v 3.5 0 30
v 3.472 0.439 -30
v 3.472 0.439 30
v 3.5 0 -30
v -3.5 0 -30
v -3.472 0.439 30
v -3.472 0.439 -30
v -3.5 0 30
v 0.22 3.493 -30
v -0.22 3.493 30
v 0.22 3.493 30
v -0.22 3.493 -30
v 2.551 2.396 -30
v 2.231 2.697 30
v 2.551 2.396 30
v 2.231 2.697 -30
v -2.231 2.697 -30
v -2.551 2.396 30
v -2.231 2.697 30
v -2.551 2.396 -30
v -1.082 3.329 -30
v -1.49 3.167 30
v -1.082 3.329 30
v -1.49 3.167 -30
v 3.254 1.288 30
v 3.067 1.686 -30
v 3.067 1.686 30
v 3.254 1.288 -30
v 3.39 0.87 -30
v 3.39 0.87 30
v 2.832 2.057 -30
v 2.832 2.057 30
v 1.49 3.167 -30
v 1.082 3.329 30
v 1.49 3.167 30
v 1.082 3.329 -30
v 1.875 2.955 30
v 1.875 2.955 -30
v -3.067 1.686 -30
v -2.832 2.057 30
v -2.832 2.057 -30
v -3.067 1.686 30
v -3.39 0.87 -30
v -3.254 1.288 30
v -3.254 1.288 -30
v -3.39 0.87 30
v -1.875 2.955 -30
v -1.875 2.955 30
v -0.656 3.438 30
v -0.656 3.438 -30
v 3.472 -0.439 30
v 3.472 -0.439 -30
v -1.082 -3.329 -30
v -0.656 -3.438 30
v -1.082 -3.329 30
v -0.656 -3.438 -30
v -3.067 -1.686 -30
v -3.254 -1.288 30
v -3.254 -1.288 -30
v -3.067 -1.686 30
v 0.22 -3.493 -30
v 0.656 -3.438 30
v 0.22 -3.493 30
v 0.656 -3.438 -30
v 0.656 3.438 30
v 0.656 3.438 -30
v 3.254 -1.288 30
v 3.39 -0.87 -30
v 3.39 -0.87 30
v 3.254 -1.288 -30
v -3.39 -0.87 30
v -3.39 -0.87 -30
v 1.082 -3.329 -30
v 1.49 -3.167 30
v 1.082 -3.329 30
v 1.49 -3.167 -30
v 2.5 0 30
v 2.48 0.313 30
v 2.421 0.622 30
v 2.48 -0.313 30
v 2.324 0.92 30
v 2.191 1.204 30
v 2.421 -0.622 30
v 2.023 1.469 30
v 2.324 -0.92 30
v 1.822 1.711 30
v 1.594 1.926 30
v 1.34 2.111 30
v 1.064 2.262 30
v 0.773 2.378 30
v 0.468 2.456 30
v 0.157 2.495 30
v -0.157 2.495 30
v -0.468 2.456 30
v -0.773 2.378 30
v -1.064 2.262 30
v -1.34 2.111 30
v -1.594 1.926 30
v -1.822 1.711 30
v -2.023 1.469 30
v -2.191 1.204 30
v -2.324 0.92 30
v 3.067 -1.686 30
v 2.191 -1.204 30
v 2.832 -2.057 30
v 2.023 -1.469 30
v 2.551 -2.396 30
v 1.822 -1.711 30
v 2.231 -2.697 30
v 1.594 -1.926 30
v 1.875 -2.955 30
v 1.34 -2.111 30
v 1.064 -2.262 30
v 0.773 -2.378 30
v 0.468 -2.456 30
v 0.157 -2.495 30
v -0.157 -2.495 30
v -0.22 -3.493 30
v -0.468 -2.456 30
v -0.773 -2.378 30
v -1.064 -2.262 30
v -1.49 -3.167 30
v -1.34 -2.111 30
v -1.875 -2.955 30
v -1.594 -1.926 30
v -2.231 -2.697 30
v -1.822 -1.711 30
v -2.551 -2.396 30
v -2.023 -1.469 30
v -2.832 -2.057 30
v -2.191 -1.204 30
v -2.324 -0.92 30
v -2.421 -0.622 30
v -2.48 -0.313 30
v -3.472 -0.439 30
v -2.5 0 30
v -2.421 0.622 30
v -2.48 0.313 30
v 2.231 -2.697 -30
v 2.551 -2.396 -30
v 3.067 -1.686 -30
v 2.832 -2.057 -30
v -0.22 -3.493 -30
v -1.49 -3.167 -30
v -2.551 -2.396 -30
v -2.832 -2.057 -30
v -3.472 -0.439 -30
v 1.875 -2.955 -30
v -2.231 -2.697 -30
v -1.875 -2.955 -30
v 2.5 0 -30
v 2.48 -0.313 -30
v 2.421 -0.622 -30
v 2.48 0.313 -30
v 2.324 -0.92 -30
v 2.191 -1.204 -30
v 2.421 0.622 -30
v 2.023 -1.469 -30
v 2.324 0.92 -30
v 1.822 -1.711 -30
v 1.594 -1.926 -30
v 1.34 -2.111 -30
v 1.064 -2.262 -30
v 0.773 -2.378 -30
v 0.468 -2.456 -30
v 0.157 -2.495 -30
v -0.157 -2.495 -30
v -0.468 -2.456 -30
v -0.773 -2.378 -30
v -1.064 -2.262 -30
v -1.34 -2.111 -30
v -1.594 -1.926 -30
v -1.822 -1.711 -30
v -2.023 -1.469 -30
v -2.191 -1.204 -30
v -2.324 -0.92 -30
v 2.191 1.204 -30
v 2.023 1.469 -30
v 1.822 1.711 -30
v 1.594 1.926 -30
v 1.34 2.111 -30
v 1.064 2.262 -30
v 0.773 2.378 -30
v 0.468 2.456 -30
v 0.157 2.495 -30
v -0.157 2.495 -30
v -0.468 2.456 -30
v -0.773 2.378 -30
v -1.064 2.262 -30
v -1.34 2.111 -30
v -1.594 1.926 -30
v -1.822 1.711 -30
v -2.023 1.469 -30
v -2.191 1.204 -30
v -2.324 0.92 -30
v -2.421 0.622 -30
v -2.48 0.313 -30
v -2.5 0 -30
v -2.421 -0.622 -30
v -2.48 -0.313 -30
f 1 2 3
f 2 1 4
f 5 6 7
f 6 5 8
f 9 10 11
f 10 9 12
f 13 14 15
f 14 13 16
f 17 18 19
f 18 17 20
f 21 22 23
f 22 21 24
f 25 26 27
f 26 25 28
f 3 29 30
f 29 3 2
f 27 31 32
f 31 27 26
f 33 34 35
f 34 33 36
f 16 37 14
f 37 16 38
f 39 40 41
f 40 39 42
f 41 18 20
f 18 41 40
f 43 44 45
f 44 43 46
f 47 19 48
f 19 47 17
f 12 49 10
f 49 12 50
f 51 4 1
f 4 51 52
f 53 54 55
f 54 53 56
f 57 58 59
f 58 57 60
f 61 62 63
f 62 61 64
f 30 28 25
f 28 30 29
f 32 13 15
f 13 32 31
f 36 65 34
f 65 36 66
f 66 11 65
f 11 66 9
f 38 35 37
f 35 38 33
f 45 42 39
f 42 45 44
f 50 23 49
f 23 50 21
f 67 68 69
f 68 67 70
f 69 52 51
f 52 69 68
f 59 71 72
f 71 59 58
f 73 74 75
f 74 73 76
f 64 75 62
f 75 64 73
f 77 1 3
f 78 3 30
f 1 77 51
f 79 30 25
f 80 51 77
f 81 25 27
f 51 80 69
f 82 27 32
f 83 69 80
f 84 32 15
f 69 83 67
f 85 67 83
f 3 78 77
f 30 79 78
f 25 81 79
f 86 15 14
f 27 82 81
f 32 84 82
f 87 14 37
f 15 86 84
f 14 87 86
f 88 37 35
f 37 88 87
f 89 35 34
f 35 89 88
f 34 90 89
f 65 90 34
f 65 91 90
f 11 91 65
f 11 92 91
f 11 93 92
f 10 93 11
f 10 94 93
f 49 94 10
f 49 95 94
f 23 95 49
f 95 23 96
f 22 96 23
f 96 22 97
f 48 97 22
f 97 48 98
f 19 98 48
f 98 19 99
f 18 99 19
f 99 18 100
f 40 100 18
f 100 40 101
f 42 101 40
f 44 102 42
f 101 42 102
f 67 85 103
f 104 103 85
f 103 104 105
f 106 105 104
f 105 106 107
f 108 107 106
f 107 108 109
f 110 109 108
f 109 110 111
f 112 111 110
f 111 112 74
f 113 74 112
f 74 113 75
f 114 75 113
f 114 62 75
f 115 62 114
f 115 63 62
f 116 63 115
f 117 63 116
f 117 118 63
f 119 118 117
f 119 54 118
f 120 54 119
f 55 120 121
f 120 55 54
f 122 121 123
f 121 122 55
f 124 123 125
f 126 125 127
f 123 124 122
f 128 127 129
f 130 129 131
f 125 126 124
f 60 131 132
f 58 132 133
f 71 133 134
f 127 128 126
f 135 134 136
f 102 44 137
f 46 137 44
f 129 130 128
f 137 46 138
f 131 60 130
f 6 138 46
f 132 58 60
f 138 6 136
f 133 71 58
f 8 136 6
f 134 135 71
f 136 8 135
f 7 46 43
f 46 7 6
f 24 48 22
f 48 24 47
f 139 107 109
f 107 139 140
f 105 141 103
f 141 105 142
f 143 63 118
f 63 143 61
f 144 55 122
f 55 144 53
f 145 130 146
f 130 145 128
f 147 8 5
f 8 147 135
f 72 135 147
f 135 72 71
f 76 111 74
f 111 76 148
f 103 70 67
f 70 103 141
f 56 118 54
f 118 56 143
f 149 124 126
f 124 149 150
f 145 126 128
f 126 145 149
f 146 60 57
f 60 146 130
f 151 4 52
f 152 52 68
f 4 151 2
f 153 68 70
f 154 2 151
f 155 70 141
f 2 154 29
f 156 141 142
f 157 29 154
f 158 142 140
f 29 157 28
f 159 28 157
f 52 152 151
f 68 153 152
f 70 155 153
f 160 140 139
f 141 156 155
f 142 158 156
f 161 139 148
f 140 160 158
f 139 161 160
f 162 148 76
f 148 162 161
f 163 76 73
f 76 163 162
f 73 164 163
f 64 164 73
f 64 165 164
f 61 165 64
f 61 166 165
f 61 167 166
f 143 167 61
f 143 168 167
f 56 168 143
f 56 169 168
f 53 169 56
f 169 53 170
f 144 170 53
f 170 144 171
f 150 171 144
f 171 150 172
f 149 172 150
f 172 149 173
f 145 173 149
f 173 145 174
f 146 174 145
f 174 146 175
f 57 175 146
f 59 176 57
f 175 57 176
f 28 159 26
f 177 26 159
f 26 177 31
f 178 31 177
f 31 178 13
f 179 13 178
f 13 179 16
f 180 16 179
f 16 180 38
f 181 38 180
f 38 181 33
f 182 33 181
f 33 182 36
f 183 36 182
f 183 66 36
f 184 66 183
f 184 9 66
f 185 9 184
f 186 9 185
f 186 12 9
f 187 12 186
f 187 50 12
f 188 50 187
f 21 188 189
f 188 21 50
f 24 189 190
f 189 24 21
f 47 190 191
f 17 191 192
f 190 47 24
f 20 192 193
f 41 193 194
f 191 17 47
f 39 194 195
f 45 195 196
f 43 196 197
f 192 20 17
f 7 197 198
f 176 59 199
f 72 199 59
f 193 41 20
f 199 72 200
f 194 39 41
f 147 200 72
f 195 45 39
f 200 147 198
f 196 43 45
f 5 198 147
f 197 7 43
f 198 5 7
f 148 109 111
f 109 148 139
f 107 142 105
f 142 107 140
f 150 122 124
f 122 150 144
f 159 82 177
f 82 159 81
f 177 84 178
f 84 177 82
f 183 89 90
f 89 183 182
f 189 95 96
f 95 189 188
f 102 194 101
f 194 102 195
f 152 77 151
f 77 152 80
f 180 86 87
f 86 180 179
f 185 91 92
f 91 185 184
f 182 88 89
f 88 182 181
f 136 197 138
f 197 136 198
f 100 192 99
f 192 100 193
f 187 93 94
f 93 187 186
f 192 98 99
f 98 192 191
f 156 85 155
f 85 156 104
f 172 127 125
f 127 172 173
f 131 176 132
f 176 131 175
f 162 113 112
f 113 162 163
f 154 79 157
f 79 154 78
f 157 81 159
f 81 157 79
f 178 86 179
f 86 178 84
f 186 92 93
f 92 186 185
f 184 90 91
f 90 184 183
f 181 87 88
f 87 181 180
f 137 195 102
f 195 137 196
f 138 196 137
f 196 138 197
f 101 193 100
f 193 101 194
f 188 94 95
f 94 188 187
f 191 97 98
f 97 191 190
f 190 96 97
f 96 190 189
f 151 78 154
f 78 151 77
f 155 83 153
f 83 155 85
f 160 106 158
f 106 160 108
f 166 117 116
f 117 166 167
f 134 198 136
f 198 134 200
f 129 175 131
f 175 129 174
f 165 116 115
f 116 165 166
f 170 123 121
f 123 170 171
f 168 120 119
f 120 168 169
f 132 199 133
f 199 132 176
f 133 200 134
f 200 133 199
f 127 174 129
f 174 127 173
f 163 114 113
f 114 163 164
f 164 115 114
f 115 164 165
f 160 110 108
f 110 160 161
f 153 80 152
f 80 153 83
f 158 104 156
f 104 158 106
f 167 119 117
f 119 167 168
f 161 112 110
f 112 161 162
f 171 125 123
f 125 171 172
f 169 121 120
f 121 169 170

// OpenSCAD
$fn = 50;


difference() {
	union() {
		translate(v = [0, 0, -30.0000000000]) {
			cylinder(h = 60, r = 3.5000000000);
		}
	}
	union() {
		translate(v = [0, 0, -100.0000000000]) {
			cylinder(h = 200, r = 2.5000000000);
		}
	}
}
